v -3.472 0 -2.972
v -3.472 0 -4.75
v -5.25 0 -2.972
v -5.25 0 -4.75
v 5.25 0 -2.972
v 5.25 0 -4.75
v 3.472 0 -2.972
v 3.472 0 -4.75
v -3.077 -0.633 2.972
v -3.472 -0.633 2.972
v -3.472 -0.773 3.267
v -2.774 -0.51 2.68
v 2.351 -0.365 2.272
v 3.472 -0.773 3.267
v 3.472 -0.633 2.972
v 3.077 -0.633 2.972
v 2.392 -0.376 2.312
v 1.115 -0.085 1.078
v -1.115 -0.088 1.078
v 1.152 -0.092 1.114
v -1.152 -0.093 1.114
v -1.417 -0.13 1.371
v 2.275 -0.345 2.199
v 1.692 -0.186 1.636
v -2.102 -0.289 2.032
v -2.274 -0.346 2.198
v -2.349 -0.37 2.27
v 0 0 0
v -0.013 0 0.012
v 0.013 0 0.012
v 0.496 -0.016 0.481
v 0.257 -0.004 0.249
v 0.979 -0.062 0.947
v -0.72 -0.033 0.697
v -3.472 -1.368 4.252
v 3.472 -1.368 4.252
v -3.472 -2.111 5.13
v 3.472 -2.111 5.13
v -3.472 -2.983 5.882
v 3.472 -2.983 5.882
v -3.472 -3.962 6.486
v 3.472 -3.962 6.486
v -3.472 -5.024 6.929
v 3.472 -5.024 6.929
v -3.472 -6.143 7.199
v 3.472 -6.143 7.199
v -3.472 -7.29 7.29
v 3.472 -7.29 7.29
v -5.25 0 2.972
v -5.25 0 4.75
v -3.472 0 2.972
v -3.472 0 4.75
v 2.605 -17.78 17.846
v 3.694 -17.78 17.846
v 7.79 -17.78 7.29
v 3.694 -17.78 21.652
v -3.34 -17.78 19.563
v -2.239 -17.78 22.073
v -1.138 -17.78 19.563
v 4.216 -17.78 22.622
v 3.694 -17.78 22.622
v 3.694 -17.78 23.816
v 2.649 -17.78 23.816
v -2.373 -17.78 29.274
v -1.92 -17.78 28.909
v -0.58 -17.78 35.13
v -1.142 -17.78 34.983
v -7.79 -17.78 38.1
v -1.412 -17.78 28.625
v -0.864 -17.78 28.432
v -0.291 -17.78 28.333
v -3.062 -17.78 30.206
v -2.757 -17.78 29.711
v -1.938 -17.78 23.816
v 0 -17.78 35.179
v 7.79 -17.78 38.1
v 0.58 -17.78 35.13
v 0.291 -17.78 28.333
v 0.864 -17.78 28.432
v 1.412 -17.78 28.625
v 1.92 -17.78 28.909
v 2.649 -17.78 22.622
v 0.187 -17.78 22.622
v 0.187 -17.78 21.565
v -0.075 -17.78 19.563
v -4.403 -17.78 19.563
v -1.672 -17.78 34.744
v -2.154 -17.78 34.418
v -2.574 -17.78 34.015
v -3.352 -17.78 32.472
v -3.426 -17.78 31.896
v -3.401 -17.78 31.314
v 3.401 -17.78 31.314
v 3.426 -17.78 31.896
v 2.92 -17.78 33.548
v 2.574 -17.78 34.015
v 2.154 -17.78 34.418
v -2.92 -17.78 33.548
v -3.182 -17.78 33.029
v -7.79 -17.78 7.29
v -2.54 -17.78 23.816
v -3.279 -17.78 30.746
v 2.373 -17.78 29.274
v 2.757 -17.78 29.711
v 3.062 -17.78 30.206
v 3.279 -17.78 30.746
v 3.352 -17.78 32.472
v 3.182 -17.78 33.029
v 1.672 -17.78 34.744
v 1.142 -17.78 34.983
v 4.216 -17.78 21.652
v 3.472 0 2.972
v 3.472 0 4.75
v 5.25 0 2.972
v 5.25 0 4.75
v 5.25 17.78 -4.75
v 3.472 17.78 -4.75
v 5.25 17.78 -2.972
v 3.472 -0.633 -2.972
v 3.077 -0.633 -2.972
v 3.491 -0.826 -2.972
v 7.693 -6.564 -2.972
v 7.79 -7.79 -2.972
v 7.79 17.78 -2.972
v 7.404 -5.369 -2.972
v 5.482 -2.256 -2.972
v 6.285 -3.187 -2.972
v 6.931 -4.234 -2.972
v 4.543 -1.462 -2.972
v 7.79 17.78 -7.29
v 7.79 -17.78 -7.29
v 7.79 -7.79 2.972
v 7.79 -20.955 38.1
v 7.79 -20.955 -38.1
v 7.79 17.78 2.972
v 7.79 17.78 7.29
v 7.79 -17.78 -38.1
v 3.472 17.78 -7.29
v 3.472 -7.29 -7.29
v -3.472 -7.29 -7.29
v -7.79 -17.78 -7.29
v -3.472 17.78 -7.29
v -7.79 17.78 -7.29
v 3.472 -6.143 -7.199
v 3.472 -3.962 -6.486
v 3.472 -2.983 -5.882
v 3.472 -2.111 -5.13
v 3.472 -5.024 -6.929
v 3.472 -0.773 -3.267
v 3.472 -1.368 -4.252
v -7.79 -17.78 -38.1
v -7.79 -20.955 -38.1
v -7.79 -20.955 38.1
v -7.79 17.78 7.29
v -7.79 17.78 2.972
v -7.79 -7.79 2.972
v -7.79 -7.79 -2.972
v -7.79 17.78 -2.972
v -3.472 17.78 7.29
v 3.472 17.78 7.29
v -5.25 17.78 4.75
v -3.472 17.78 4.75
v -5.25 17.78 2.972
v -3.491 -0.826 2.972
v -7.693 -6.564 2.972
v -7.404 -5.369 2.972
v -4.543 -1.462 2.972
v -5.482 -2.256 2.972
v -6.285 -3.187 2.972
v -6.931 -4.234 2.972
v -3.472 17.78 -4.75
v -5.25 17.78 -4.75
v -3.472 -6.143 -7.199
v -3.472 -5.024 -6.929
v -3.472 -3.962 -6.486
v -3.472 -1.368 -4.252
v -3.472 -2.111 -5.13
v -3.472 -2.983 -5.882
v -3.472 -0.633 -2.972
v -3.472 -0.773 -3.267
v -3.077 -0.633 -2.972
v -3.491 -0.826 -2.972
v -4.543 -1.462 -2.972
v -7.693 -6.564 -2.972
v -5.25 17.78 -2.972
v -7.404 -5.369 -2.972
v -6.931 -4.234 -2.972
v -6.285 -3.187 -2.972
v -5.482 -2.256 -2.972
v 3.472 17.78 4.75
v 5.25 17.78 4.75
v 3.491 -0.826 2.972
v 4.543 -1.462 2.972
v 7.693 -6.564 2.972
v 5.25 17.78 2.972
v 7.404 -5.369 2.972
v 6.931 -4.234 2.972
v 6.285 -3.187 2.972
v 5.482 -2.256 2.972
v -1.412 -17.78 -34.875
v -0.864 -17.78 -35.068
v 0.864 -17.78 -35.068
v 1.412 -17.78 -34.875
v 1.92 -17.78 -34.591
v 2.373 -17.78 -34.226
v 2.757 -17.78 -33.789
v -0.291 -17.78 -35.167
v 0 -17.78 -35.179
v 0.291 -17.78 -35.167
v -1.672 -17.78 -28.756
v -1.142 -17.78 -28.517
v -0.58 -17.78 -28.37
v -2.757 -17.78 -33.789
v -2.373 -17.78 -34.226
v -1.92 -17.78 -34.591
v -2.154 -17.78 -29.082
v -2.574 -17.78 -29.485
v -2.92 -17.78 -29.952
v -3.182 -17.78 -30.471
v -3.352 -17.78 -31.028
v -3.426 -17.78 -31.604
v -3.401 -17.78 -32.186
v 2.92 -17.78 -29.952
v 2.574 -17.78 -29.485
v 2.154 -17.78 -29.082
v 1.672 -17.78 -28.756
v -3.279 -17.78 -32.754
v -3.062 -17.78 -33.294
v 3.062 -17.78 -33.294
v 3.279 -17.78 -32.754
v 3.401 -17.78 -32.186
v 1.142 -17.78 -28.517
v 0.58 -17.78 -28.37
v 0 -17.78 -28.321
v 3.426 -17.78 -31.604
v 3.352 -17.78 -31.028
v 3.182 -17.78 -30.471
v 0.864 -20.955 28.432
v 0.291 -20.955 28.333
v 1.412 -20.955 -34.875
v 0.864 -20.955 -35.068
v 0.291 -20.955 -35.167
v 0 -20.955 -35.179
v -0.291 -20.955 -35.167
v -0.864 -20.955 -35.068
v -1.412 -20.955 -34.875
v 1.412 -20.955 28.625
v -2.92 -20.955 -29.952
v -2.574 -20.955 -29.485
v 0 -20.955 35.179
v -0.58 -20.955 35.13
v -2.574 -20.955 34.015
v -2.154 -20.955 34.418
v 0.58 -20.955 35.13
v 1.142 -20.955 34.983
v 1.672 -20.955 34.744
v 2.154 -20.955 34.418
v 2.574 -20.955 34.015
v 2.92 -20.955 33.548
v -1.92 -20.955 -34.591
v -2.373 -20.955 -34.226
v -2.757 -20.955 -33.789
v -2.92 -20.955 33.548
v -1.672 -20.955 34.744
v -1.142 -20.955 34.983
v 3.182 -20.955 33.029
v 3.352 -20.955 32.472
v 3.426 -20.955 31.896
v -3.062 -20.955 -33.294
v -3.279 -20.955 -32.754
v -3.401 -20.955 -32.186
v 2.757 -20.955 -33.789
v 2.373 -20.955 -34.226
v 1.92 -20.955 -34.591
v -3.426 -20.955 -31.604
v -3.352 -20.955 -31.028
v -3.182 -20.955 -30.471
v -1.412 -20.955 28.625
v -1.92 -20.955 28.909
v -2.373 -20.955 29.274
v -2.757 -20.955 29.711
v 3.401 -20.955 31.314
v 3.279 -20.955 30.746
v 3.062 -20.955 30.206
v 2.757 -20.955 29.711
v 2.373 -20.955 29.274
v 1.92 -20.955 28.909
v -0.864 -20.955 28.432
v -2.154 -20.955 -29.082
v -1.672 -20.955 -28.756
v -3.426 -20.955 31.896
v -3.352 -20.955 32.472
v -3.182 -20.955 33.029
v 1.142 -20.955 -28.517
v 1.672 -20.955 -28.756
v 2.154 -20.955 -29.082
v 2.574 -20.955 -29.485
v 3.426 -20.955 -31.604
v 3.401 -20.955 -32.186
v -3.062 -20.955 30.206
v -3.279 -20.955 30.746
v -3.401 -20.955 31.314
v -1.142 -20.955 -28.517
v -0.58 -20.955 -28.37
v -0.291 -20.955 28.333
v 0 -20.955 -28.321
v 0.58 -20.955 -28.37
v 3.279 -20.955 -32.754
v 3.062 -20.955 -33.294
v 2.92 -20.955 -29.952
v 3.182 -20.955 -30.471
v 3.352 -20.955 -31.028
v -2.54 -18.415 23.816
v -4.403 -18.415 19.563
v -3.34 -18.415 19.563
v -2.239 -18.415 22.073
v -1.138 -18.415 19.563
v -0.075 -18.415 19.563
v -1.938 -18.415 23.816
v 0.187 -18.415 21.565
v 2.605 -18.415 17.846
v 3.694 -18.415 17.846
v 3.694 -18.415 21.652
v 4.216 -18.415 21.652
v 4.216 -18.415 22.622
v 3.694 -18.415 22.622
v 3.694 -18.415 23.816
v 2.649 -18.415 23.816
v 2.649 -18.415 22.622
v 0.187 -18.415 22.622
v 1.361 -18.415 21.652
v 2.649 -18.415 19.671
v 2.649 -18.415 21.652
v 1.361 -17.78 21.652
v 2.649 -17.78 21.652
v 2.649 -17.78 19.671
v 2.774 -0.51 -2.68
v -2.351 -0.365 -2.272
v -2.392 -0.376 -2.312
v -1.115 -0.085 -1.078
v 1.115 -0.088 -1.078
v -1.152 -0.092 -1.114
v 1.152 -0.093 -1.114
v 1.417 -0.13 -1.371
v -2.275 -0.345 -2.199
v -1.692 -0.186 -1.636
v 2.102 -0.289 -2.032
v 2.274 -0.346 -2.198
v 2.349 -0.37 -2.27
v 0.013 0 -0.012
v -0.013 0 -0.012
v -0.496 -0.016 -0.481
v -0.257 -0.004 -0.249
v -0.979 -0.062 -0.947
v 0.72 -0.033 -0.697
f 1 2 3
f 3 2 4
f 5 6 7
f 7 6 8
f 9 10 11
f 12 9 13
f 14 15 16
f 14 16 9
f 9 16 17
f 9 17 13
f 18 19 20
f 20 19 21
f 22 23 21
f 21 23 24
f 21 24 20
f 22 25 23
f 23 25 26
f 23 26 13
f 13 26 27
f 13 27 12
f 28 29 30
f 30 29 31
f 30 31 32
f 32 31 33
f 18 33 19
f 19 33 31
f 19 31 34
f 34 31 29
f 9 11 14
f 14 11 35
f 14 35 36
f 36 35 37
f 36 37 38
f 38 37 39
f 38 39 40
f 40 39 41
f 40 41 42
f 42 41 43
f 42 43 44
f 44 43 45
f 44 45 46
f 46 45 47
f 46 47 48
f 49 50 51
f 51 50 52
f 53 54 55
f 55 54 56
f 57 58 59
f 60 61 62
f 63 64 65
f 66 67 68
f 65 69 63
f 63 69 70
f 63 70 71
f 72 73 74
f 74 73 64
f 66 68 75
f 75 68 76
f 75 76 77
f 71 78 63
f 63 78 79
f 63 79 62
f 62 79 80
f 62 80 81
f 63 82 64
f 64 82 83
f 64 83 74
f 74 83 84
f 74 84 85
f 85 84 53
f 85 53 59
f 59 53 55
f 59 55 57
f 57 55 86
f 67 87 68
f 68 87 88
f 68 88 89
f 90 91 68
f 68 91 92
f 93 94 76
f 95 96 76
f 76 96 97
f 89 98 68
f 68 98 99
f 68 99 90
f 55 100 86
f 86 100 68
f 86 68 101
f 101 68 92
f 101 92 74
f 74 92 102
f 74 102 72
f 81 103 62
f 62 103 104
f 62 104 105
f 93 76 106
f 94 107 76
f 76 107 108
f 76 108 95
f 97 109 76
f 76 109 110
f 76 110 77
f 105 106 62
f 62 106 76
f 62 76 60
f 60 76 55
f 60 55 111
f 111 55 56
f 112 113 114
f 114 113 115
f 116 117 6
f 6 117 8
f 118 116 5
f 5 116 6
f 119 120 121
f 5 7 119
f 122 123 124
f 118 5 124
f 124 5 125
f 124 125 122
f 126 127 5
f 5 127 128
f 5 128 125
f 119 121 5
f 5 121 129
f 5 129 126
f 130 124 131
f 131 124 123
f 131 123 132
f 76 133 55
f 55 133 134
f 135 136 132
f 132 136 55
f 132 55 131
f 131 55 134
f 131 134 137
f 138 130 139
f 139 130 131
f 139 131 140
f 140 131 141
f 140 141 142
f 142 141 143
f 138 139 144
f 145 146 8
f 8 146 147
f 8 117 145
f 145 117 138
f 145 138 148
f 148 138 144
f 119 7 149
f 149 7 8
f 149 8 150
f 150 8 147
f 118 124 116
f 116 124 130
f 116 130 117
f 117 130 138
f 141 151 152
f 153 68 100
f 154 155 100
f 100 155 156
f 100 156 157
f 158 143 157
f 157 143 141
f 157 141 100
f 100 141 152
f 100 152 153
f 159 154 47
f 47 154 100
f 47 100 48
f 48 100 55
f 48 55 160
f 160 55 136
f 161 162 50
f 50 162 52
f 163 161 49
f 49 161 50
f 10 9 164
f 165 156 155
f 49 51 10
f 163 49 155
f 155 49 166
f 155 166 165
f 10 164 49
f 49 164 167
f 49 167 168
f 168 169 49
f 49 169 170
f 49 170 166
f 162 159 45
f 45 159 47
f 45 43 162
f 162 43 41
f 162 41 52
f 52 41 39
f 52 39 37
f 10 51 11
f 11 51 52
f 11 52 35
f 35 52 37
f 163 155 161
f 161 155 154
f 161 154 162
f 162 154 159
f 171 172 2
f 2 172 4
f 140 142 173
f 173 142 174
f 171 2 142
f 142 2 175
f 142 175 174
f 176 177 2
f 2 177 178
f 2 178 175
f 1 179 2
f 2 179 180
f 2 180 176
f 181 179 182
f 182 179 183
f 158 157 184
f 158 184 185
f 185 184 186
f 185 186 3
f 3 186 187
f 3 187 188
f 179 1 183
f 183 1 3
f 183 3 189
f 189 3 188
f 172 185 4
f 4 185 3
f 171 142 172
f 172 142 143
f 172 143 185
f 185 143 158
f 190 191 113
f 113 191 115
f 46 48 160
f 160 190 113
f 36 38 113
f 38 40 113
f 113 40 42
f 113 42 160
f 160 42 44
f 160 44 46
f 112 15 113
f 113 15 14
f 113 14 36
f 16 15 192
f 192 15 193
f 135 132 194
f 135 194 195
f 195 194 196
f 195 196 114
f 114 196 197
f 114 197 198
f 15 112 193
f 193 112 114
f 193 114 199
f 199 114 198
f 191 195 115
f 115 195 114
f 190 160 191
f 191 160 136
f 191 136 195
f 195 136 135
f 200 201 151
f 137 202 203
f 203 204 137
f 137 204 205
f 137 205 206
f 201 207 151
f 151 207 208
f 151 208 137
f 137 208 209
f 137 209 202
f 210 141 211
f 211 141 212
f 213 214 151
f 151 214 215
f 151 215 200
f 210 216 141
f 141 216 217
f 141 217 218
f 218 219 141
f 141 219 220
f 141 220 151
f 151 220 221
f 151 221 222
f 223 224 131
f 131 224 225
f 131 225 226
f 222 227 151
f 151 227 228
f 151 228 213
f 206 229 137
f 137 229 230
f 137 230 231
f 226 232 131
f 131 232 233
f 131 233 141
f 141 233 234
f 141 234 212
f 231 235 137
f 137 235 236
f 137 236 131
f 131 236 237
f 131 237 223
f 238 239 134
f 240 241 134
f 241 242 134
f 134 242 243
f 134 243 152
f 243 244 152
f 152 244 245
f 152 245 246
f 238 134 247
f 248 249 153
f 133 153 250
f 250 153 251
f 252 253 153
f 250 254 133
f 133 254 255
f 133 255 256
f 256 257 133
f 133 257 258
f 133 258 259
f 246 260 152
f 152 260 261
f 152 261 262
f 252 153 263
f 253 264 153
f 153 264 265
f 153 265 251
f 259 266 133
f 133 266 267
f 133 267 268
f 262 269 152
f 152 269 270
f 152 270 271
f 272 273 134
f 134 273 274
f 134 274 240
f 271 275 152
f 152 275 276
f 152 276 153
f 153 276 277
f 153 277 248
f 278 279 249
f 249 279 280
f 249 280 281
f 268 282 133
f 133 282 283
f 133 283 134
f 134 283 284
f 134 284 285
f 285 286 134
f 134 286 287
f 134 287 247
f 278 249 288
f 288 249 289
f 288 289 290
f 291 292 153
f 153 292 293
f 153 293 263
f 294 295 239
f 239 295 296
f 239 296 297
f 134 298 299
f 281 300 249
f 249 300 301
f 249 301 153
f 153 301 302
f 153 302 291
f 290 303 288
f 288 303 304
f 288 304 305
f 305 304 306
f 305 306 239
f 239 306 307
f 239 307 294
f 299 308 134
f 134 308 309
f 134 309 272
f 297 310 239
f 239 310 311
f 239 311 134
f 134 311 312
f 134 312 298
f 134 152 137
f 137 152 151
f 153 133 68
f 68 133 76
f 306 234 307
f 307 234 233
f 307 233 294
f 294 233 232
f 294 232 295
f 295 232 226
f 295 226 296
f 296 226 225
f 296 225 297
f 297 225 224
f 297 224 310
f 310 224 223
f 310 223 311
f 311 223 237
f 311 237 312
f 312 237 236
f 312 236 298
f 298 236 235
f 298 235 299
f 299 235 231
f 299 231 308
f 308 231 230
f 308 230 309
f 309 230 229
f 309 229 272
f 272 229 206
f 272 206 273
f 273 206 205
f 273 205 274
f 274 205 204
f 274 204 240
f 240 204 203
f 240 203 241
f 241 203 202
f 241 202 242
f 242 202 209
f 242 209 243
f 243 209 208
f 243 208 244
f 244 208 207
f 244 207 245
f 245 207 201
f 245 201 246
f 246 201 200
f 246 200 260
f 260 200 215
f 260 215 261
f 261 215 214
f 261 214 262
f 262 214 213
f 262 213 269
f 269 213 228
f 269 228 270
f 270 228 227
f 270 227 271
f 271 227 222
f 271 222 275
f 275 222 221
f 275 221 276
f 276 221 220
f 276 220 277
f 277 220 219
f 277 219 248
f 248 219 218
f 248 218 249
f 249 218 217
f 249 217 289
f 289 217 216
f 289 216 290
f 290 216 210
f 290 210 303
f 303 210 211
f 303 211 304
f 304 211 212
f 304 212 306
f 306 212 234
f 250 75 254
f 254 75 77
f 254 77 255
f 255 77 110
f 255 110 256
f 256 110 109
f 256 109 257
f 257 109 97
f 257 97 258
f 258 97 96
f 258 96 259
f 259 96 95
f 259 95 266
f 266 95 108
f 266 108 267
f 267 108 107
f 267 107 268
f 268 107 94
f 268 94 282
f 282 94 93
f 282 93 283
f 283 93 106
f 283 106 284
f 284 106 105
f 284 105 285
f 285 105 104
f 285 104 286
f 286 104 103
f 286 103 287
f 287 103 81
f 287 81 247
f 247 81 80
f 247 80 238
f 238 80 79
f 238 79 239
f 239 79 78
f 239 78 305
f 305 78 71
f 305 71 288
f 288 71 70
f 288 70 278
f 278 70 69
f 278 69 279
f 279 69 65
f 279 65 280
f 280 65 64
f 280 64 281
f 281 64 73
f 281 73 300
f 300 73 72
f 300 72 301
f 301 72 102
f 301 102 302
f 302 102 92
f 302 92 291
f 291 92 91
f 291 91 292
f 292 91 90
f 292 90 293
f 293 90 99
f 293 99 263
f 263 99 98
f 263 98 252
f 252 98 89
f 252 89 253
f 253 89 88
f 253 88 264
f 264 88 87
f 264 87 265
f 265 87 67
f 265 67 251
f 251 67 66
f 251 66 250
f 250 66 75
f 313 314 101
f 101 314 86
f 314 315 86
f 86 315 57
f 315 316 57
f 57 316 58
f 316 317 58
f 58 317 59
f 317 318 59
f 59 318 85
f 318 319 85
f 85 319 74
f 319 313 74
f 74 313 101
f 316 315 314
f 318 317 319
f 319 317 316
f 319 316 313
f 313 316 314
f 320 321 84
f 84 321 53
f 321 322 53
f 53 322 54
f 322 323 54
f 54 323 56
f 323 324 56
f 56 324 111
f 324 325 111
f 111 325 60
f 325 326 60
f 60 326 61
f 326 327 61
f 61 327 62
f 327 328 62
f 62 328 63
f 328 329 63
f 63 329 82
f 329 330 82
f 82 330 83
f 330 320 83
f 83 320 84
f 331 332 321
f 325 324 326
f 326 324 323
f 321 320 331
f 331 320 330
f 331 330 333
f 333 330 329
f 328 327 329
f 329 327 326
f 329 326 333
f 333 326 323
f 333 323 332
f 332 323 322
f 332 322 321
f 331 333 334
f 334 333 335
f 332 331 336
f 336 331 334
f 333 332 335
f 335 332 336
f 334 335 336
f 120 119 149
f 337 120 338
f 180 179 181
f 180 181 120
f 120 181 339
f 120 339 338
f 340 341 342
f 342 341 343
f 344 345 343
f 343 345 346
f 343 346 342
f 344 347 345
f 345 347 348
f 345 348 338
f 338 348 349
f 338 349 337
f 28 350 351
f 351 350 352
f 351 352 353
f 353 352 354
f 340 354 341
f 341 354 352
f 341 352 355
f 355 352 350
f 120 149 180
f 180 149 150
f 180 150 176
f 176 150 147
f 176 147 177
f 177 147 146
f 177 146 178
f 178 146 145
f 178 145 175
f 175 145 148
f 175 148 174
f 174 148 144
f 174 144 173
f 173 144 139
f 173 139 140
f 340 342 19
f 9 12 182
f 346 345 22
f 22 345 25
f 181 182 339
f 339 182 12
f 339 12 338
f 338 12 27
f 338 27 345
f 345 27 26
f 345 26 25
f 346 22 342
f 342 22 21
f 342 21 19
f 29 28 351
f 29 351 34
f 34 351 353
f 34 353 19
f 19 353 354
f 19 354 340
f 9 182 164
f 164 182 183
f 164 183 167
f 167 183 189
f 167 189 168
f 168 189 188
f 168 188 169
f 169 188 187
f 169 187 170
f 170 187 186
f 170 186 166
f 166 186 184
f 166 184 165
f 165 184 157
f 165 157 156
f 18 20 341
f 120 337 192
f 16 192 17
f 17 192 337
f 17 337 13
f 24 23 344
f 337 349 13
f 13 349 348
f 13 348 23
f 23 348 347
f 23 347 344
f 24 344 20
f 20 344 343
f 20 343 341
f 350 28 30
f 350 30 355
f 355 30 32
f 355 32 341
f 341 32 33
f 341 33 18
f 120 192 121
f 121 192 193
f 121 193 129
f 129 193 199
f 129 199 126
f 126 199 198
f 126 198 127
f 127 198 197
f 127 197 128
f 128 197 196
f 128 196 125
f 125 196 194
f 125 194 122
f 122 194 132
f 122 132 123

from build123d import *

# Parameters (mm, degrees)
BOSS_EXTRUDE1_DEPTH            = 17.78
BOSS_EXTRUDE1_2_DEPTH          = 17.78
BOSS_EXTRUDE1_3_DEPTH          = 17.78
BOSS_EXTRUDE1_4_DEPTH          = 17.78
SKETCH2_W                      = 15.58
SKETCH2_H                      = 14.58
BOSS_EXTRUDE2_DEPTH            = 17.78
SKETCH3_W                      = 15.58
SKETCH3_H                      = 76.2
SKETCH3_R                      = 3.429
BOSS_EXTRUDE3_DEPTH            = 3.175
CUT_EXTRUDE3_DEPTH             = 0.635
CUT_EXTRUDE4_REACH             = 46.175
CUT_EXTRUDE4_DIRECTION_2_REACH = 46.175
CUT_EXTRUDE5_REACH             = 46.175
CUT_EXTRUDE5_DIRECTION_2_REACH = 46.175


with BuildPart() as part:
    # Sketch1 → Boss-Extrude1 (new body)
    with BuildSketch(Plane(origin=(0, 0, 0), x_dir=(1, 0, 0), z_dir=(0, 1, 0))):
        Polygon((-5.25, 4.75), (-5.25, 2.972), (-7.79, 2.972), (-7.79, 7.29), (-3.472, 7.29), (-3.472, 4.75), align=None)
    extrude(amount=BOSS_EXTRUDE1_DEPTH)



with BuildPart() as body_2:
    # Sketch1 → Boss-Extrude1 2 (new body)
    with BuildSketch(Plane(origin=(0, 0, 0), x_dir=(1, 0, 0), z_dir=(0, 1, 0))):
        Polygon((7.79, 2.972), (7.79, 7.29), (3.472, 7.29), (3.472, 4.75), (5.25, 4.75), (5.25, 2.972), align=None)
    extrude(amount=BOSS_EXTRUDE1_2_DEPTH)


with BuildPart() as body_3:
    # Sketch1 → Boss-Extrude1 3 (new body)
    with BuildSketch(Plane(origin=(0, 0, 0), x_dir=(1, 0, 0), z_dir=(0, 1, 0))):
        Polygon((5.25, -2.972), (7.79, -2.972), (7.79, -7.29), (3.472, -7.29), (3.472, -4.75), (5.25, -4.75), align=None)
    extrude(amount=BOSS_EXTRUDE1_3_DEPTH)


with BuildPart() as body_4:
    # Sketch1 → Boss-Extrude1 4 (new body)
    with BuildSketch(Plane(origin=(0, 0, 0), x_dir=(1, 0, 0), z_dir=(0, 1, 0))):
        Polygon((-5.25, -2.972), (-7.79, -2.972), (-7.79, -7.29), (-3.472, -7.29), (-3.472, -4.75), (-5.25, -4.75), align=None)
    extrude(amount=BOSS_EXTRUDE1_4_DEPTH)


with BuildPart() as part_1:
    add(part.part)

    add(body_2.part)  # Boss-Extrude2 merges body 2

    add(body_3.part)  # Boss-Extrude2 merges body 3

    add(body_4.part)  # Boss-Extrude2 merges body 4
    # Sketch2 → Boss-Extrude2 (add)
    with BuildSketch(Plane(origin=(0, 0, 0), x_dir=(-1, 0, 0), z_dir=(0, -1, 0))):
        Rectangle(SKETCH2_W, SKETCH2_H)
    extrude(amount=BOSS_EXTRUDE2_DEPTH)

    # Sketch3 → Boss-Extrude3 (add)
    with BuildSketch(Plane(origin=(0, -17.78, 0), x_dir=(-1, 0, 0), z_dir=(0, -1, 0))):
        Rectangle(SKETCH3_W, SKETCH3_H)
        with Locations(Location((0, 31.75, 0), (0, 0, 90))):
            Circle(SKETCH3_R, mode=Mode.SUBTRACT)
        with Locations(Location((0, -31.75, 0), (0, 0, 270))):
            Circle(SKETCH3_R, mode=Mode.SUBTRACT)
    extrude(amount=BOSS_EXTRUDE3_DEPTH)

    # Sketch5 → Cut-Extrude3 (cut)
    # profile 1 of 2: a face of its own
    with BuildSketch(Plane(origin=(0, -17.78, 0), x_dir=(1, 0, 0), z_dir=(0, 1, 0))):
        Polygon((-4.402938034, -19.56265828), (-3.33951656, -19.56265828), (-2.238782051, -22.073125862), (-1.138047543, -19.56265828), (-0.074626068, -19.56265828), (-1.937945713, -23.816344178), (-2.539618389, -23.816344178), align=None)
    # profile 2 of 2: a face of its own
    with BuildSketch(Plane(origin=(0, -17.78, 0), x_dir=(1, 0, 0), z_dir=(0, 1, 0))):
        Polygon((2.604916199, -17.846258707), (3.693990385, -17.846258707), (3.693990385, -21.652188195), (4.216372863, -21.652188195), (4.216372863, -22.622327084), (3.693990385, -22.622327084), (3.693990385, -23.816344178), (2.649225427, -23.816344178), (2.649225427, -22.622327084), (0.186565171, -22.622327084), (0.186565171, -21.564735771), align=None)
        Polygon((2.649225427, -21.652188195), (2.649225427, -19.671099286), (1.360759716, -21.652188195), align=None, mode=Mode.SUBTRACT)
    extrude(amount=-CUT_EXTRUDE3_DEPTH, mode=Mode.SUBTRACT)

    # Cut-Extrude4: up to this face of the body (flat: up to its plane)
    cut_extrude4_end = Plane(part_1.part.faces().sort_by_distance((-3.472, 8.89, 6.02))[0])
    # Sketch6 → Cut-Extrude4 (cut, up to the picked face)
    with BuildSketch(Plane(origin=(0, 0, 0), x_dir=(0, 0, -1), z_dir=(1, 0, 0)), mode=Mode.PRIVATE) as cut_extrude4_sk1:
        with BuildLine():
            Line((-7.29, -7.29), (-7.29, 2.54))
            Line((-7.29, 2.54), (7.29, 2.54))
            Line((7.29, 2.54), (7.29, -7.29))
            ThreePointArc((7.29, -7.29), (0, 0), (-7.29, -7.29))
        make_face()
    cut_extrude4_tool1 = split(extrude(cut_extrude4_sk1.sketch, amount=-CUT_EXTRUDE4_REACH, mode=Mode.PRIVATE), bisect_by=cut_extrude4_end, keep=Keep.BOTH, mode=Mode.PRIVATE)
    add(cut_extrude4_tool1.solids().sort_by(Axis((0, 0.165267, 0), (-1, 0, 0)))[0], mode=Mode.SUBTRACT)

    # Cut-Extrude4 direction 2: up to this face of the body (flat: up to its plane)
    cut_extrude4_direction_2_end = Plane(part_1.part.faces().sort_by_distance((3.472, 8.89, 6.02))[0])
    # Sketch6 → Cut-Extrude4 direction 2 (cut, up to the picked face)
    with BuildSketch(Plane(origin=(0, 0, 0), x_dir=(0, 0, -1), z_dir=(1, 0, 0)), mode=Mode.PRIVATE) as cut_extrude4_direction_2_sk1:
        with BuildLine():
            Line((-7.29, -7.29), (-7.29, 2.54))
            Line((-7.29, 2.54), (7.29, 2.54))
            Line((7.29, 2.54), (7.29, -7.29))
            ThreePointArc((7.29, -7.29), (0, 0), (-7.29, -7.29))
        make_face()
    cut_extrude4_direction_2_tool1 = split(extrude(cut_extrude4_direction_2_sk1.sketch, amount=CUT_EXTRUDE4_DIRECTION_2_REACH, mode=Mode.PRIVATE), bisect_by=cut_extrude4_direction_2_end, keep=Keep.BOTH, mode=Mode.PRIVATE)
    add(cut_extrude4_direction_2_tool1.solids().sort_by(Axis((0, 0.165267, 0), (1, 0, 0)))[0], mode=Mode.SUBTRACT)

    # Cut-Extrude5: up to this face of the body (flat: up to its plane)
    cut_extrude5_end = Plane(part_1.part.faces().sort_by_distance((-6.52, 8.89, -2.972))[0])
    # Sketch7 → Cut-Extrude5 (cut, up to the picked face)
    with BuildSketch(Plane.XY, mode=Mode.PRIVATE) as cut_extrude5_sk1:
        with BuildLine():
            Line((-7.79, -7.79), (-7.79, 4.538671937))
            Line((-7.79, 4.538671937), (7.79, 4.538671937))
            Line((7.79, 4.538671937), (7.79, -7.79))
            ThreePointArc((7.79, -7.79), (0, 0), (-7.79, -7.79))
        make_face()
    cut_extrude5_tool1 = split(extrude(cut_extrude5_sk1.sketch, amount=-CUT_EXTRUDE5_REACH, mode=Mode.PRIVATE), bisect_by=cut_extrude5_end, keep=Keep.BOTH, mode=Mode.PRIVATE)
    add(cut_extrude5_tool1.solids().sort_by(Axis((0, 1.190075, 0), (0, 0, -1)))[0], mode=Mode.SUBTRACT)

    # Cut-Extrude5 direction 2: up to this face of the body (flat: up to its plane)
    cut_extrude5_direction_2_end = Plane(part_1.part.faces().sort_by_distance((-6.52, 8.89, 2.972))[0])
    # Sketch7 → Cut-Extrude5 direction 2 (cut, up to the picked face)
    with BuildSketch(Plane.XY, mode=Mode.PRIVATE) as cut_extrude5_direction_2_sk1:
        with BuildLine():
            Line((-7.79, -7.79), (-7.79, 4.538671937))
            Line((-7.79, 4.538671937), (7.79, 4.538671937))
            Line((7.79, 4.538671937), (7.79, -7.79))
            ThreePointArc((7.79, -7.79), (0, 0), (-7.79, -7.79))
        make_face()
    cut_extrude5_direction_2_tool1 = split(extrude(cut_extrude5_direction_2_sk1.sketch, amount=CUT_EXTRUDE5_DIRECTION_2_REACH, mode=Mode.PRIVATE), bisect_by=cut_extrude5_direction_2_end, keep=Keep.BOTH, mode=Mode.PRIVATE)
    add(cut_extrude5_direction_2_tool1.solids().sort_by(Axis((0, 1.190075, 0), (0, 0, 1)))[0], mode=Mode.SUBTRACT)


solid = part_1.part
